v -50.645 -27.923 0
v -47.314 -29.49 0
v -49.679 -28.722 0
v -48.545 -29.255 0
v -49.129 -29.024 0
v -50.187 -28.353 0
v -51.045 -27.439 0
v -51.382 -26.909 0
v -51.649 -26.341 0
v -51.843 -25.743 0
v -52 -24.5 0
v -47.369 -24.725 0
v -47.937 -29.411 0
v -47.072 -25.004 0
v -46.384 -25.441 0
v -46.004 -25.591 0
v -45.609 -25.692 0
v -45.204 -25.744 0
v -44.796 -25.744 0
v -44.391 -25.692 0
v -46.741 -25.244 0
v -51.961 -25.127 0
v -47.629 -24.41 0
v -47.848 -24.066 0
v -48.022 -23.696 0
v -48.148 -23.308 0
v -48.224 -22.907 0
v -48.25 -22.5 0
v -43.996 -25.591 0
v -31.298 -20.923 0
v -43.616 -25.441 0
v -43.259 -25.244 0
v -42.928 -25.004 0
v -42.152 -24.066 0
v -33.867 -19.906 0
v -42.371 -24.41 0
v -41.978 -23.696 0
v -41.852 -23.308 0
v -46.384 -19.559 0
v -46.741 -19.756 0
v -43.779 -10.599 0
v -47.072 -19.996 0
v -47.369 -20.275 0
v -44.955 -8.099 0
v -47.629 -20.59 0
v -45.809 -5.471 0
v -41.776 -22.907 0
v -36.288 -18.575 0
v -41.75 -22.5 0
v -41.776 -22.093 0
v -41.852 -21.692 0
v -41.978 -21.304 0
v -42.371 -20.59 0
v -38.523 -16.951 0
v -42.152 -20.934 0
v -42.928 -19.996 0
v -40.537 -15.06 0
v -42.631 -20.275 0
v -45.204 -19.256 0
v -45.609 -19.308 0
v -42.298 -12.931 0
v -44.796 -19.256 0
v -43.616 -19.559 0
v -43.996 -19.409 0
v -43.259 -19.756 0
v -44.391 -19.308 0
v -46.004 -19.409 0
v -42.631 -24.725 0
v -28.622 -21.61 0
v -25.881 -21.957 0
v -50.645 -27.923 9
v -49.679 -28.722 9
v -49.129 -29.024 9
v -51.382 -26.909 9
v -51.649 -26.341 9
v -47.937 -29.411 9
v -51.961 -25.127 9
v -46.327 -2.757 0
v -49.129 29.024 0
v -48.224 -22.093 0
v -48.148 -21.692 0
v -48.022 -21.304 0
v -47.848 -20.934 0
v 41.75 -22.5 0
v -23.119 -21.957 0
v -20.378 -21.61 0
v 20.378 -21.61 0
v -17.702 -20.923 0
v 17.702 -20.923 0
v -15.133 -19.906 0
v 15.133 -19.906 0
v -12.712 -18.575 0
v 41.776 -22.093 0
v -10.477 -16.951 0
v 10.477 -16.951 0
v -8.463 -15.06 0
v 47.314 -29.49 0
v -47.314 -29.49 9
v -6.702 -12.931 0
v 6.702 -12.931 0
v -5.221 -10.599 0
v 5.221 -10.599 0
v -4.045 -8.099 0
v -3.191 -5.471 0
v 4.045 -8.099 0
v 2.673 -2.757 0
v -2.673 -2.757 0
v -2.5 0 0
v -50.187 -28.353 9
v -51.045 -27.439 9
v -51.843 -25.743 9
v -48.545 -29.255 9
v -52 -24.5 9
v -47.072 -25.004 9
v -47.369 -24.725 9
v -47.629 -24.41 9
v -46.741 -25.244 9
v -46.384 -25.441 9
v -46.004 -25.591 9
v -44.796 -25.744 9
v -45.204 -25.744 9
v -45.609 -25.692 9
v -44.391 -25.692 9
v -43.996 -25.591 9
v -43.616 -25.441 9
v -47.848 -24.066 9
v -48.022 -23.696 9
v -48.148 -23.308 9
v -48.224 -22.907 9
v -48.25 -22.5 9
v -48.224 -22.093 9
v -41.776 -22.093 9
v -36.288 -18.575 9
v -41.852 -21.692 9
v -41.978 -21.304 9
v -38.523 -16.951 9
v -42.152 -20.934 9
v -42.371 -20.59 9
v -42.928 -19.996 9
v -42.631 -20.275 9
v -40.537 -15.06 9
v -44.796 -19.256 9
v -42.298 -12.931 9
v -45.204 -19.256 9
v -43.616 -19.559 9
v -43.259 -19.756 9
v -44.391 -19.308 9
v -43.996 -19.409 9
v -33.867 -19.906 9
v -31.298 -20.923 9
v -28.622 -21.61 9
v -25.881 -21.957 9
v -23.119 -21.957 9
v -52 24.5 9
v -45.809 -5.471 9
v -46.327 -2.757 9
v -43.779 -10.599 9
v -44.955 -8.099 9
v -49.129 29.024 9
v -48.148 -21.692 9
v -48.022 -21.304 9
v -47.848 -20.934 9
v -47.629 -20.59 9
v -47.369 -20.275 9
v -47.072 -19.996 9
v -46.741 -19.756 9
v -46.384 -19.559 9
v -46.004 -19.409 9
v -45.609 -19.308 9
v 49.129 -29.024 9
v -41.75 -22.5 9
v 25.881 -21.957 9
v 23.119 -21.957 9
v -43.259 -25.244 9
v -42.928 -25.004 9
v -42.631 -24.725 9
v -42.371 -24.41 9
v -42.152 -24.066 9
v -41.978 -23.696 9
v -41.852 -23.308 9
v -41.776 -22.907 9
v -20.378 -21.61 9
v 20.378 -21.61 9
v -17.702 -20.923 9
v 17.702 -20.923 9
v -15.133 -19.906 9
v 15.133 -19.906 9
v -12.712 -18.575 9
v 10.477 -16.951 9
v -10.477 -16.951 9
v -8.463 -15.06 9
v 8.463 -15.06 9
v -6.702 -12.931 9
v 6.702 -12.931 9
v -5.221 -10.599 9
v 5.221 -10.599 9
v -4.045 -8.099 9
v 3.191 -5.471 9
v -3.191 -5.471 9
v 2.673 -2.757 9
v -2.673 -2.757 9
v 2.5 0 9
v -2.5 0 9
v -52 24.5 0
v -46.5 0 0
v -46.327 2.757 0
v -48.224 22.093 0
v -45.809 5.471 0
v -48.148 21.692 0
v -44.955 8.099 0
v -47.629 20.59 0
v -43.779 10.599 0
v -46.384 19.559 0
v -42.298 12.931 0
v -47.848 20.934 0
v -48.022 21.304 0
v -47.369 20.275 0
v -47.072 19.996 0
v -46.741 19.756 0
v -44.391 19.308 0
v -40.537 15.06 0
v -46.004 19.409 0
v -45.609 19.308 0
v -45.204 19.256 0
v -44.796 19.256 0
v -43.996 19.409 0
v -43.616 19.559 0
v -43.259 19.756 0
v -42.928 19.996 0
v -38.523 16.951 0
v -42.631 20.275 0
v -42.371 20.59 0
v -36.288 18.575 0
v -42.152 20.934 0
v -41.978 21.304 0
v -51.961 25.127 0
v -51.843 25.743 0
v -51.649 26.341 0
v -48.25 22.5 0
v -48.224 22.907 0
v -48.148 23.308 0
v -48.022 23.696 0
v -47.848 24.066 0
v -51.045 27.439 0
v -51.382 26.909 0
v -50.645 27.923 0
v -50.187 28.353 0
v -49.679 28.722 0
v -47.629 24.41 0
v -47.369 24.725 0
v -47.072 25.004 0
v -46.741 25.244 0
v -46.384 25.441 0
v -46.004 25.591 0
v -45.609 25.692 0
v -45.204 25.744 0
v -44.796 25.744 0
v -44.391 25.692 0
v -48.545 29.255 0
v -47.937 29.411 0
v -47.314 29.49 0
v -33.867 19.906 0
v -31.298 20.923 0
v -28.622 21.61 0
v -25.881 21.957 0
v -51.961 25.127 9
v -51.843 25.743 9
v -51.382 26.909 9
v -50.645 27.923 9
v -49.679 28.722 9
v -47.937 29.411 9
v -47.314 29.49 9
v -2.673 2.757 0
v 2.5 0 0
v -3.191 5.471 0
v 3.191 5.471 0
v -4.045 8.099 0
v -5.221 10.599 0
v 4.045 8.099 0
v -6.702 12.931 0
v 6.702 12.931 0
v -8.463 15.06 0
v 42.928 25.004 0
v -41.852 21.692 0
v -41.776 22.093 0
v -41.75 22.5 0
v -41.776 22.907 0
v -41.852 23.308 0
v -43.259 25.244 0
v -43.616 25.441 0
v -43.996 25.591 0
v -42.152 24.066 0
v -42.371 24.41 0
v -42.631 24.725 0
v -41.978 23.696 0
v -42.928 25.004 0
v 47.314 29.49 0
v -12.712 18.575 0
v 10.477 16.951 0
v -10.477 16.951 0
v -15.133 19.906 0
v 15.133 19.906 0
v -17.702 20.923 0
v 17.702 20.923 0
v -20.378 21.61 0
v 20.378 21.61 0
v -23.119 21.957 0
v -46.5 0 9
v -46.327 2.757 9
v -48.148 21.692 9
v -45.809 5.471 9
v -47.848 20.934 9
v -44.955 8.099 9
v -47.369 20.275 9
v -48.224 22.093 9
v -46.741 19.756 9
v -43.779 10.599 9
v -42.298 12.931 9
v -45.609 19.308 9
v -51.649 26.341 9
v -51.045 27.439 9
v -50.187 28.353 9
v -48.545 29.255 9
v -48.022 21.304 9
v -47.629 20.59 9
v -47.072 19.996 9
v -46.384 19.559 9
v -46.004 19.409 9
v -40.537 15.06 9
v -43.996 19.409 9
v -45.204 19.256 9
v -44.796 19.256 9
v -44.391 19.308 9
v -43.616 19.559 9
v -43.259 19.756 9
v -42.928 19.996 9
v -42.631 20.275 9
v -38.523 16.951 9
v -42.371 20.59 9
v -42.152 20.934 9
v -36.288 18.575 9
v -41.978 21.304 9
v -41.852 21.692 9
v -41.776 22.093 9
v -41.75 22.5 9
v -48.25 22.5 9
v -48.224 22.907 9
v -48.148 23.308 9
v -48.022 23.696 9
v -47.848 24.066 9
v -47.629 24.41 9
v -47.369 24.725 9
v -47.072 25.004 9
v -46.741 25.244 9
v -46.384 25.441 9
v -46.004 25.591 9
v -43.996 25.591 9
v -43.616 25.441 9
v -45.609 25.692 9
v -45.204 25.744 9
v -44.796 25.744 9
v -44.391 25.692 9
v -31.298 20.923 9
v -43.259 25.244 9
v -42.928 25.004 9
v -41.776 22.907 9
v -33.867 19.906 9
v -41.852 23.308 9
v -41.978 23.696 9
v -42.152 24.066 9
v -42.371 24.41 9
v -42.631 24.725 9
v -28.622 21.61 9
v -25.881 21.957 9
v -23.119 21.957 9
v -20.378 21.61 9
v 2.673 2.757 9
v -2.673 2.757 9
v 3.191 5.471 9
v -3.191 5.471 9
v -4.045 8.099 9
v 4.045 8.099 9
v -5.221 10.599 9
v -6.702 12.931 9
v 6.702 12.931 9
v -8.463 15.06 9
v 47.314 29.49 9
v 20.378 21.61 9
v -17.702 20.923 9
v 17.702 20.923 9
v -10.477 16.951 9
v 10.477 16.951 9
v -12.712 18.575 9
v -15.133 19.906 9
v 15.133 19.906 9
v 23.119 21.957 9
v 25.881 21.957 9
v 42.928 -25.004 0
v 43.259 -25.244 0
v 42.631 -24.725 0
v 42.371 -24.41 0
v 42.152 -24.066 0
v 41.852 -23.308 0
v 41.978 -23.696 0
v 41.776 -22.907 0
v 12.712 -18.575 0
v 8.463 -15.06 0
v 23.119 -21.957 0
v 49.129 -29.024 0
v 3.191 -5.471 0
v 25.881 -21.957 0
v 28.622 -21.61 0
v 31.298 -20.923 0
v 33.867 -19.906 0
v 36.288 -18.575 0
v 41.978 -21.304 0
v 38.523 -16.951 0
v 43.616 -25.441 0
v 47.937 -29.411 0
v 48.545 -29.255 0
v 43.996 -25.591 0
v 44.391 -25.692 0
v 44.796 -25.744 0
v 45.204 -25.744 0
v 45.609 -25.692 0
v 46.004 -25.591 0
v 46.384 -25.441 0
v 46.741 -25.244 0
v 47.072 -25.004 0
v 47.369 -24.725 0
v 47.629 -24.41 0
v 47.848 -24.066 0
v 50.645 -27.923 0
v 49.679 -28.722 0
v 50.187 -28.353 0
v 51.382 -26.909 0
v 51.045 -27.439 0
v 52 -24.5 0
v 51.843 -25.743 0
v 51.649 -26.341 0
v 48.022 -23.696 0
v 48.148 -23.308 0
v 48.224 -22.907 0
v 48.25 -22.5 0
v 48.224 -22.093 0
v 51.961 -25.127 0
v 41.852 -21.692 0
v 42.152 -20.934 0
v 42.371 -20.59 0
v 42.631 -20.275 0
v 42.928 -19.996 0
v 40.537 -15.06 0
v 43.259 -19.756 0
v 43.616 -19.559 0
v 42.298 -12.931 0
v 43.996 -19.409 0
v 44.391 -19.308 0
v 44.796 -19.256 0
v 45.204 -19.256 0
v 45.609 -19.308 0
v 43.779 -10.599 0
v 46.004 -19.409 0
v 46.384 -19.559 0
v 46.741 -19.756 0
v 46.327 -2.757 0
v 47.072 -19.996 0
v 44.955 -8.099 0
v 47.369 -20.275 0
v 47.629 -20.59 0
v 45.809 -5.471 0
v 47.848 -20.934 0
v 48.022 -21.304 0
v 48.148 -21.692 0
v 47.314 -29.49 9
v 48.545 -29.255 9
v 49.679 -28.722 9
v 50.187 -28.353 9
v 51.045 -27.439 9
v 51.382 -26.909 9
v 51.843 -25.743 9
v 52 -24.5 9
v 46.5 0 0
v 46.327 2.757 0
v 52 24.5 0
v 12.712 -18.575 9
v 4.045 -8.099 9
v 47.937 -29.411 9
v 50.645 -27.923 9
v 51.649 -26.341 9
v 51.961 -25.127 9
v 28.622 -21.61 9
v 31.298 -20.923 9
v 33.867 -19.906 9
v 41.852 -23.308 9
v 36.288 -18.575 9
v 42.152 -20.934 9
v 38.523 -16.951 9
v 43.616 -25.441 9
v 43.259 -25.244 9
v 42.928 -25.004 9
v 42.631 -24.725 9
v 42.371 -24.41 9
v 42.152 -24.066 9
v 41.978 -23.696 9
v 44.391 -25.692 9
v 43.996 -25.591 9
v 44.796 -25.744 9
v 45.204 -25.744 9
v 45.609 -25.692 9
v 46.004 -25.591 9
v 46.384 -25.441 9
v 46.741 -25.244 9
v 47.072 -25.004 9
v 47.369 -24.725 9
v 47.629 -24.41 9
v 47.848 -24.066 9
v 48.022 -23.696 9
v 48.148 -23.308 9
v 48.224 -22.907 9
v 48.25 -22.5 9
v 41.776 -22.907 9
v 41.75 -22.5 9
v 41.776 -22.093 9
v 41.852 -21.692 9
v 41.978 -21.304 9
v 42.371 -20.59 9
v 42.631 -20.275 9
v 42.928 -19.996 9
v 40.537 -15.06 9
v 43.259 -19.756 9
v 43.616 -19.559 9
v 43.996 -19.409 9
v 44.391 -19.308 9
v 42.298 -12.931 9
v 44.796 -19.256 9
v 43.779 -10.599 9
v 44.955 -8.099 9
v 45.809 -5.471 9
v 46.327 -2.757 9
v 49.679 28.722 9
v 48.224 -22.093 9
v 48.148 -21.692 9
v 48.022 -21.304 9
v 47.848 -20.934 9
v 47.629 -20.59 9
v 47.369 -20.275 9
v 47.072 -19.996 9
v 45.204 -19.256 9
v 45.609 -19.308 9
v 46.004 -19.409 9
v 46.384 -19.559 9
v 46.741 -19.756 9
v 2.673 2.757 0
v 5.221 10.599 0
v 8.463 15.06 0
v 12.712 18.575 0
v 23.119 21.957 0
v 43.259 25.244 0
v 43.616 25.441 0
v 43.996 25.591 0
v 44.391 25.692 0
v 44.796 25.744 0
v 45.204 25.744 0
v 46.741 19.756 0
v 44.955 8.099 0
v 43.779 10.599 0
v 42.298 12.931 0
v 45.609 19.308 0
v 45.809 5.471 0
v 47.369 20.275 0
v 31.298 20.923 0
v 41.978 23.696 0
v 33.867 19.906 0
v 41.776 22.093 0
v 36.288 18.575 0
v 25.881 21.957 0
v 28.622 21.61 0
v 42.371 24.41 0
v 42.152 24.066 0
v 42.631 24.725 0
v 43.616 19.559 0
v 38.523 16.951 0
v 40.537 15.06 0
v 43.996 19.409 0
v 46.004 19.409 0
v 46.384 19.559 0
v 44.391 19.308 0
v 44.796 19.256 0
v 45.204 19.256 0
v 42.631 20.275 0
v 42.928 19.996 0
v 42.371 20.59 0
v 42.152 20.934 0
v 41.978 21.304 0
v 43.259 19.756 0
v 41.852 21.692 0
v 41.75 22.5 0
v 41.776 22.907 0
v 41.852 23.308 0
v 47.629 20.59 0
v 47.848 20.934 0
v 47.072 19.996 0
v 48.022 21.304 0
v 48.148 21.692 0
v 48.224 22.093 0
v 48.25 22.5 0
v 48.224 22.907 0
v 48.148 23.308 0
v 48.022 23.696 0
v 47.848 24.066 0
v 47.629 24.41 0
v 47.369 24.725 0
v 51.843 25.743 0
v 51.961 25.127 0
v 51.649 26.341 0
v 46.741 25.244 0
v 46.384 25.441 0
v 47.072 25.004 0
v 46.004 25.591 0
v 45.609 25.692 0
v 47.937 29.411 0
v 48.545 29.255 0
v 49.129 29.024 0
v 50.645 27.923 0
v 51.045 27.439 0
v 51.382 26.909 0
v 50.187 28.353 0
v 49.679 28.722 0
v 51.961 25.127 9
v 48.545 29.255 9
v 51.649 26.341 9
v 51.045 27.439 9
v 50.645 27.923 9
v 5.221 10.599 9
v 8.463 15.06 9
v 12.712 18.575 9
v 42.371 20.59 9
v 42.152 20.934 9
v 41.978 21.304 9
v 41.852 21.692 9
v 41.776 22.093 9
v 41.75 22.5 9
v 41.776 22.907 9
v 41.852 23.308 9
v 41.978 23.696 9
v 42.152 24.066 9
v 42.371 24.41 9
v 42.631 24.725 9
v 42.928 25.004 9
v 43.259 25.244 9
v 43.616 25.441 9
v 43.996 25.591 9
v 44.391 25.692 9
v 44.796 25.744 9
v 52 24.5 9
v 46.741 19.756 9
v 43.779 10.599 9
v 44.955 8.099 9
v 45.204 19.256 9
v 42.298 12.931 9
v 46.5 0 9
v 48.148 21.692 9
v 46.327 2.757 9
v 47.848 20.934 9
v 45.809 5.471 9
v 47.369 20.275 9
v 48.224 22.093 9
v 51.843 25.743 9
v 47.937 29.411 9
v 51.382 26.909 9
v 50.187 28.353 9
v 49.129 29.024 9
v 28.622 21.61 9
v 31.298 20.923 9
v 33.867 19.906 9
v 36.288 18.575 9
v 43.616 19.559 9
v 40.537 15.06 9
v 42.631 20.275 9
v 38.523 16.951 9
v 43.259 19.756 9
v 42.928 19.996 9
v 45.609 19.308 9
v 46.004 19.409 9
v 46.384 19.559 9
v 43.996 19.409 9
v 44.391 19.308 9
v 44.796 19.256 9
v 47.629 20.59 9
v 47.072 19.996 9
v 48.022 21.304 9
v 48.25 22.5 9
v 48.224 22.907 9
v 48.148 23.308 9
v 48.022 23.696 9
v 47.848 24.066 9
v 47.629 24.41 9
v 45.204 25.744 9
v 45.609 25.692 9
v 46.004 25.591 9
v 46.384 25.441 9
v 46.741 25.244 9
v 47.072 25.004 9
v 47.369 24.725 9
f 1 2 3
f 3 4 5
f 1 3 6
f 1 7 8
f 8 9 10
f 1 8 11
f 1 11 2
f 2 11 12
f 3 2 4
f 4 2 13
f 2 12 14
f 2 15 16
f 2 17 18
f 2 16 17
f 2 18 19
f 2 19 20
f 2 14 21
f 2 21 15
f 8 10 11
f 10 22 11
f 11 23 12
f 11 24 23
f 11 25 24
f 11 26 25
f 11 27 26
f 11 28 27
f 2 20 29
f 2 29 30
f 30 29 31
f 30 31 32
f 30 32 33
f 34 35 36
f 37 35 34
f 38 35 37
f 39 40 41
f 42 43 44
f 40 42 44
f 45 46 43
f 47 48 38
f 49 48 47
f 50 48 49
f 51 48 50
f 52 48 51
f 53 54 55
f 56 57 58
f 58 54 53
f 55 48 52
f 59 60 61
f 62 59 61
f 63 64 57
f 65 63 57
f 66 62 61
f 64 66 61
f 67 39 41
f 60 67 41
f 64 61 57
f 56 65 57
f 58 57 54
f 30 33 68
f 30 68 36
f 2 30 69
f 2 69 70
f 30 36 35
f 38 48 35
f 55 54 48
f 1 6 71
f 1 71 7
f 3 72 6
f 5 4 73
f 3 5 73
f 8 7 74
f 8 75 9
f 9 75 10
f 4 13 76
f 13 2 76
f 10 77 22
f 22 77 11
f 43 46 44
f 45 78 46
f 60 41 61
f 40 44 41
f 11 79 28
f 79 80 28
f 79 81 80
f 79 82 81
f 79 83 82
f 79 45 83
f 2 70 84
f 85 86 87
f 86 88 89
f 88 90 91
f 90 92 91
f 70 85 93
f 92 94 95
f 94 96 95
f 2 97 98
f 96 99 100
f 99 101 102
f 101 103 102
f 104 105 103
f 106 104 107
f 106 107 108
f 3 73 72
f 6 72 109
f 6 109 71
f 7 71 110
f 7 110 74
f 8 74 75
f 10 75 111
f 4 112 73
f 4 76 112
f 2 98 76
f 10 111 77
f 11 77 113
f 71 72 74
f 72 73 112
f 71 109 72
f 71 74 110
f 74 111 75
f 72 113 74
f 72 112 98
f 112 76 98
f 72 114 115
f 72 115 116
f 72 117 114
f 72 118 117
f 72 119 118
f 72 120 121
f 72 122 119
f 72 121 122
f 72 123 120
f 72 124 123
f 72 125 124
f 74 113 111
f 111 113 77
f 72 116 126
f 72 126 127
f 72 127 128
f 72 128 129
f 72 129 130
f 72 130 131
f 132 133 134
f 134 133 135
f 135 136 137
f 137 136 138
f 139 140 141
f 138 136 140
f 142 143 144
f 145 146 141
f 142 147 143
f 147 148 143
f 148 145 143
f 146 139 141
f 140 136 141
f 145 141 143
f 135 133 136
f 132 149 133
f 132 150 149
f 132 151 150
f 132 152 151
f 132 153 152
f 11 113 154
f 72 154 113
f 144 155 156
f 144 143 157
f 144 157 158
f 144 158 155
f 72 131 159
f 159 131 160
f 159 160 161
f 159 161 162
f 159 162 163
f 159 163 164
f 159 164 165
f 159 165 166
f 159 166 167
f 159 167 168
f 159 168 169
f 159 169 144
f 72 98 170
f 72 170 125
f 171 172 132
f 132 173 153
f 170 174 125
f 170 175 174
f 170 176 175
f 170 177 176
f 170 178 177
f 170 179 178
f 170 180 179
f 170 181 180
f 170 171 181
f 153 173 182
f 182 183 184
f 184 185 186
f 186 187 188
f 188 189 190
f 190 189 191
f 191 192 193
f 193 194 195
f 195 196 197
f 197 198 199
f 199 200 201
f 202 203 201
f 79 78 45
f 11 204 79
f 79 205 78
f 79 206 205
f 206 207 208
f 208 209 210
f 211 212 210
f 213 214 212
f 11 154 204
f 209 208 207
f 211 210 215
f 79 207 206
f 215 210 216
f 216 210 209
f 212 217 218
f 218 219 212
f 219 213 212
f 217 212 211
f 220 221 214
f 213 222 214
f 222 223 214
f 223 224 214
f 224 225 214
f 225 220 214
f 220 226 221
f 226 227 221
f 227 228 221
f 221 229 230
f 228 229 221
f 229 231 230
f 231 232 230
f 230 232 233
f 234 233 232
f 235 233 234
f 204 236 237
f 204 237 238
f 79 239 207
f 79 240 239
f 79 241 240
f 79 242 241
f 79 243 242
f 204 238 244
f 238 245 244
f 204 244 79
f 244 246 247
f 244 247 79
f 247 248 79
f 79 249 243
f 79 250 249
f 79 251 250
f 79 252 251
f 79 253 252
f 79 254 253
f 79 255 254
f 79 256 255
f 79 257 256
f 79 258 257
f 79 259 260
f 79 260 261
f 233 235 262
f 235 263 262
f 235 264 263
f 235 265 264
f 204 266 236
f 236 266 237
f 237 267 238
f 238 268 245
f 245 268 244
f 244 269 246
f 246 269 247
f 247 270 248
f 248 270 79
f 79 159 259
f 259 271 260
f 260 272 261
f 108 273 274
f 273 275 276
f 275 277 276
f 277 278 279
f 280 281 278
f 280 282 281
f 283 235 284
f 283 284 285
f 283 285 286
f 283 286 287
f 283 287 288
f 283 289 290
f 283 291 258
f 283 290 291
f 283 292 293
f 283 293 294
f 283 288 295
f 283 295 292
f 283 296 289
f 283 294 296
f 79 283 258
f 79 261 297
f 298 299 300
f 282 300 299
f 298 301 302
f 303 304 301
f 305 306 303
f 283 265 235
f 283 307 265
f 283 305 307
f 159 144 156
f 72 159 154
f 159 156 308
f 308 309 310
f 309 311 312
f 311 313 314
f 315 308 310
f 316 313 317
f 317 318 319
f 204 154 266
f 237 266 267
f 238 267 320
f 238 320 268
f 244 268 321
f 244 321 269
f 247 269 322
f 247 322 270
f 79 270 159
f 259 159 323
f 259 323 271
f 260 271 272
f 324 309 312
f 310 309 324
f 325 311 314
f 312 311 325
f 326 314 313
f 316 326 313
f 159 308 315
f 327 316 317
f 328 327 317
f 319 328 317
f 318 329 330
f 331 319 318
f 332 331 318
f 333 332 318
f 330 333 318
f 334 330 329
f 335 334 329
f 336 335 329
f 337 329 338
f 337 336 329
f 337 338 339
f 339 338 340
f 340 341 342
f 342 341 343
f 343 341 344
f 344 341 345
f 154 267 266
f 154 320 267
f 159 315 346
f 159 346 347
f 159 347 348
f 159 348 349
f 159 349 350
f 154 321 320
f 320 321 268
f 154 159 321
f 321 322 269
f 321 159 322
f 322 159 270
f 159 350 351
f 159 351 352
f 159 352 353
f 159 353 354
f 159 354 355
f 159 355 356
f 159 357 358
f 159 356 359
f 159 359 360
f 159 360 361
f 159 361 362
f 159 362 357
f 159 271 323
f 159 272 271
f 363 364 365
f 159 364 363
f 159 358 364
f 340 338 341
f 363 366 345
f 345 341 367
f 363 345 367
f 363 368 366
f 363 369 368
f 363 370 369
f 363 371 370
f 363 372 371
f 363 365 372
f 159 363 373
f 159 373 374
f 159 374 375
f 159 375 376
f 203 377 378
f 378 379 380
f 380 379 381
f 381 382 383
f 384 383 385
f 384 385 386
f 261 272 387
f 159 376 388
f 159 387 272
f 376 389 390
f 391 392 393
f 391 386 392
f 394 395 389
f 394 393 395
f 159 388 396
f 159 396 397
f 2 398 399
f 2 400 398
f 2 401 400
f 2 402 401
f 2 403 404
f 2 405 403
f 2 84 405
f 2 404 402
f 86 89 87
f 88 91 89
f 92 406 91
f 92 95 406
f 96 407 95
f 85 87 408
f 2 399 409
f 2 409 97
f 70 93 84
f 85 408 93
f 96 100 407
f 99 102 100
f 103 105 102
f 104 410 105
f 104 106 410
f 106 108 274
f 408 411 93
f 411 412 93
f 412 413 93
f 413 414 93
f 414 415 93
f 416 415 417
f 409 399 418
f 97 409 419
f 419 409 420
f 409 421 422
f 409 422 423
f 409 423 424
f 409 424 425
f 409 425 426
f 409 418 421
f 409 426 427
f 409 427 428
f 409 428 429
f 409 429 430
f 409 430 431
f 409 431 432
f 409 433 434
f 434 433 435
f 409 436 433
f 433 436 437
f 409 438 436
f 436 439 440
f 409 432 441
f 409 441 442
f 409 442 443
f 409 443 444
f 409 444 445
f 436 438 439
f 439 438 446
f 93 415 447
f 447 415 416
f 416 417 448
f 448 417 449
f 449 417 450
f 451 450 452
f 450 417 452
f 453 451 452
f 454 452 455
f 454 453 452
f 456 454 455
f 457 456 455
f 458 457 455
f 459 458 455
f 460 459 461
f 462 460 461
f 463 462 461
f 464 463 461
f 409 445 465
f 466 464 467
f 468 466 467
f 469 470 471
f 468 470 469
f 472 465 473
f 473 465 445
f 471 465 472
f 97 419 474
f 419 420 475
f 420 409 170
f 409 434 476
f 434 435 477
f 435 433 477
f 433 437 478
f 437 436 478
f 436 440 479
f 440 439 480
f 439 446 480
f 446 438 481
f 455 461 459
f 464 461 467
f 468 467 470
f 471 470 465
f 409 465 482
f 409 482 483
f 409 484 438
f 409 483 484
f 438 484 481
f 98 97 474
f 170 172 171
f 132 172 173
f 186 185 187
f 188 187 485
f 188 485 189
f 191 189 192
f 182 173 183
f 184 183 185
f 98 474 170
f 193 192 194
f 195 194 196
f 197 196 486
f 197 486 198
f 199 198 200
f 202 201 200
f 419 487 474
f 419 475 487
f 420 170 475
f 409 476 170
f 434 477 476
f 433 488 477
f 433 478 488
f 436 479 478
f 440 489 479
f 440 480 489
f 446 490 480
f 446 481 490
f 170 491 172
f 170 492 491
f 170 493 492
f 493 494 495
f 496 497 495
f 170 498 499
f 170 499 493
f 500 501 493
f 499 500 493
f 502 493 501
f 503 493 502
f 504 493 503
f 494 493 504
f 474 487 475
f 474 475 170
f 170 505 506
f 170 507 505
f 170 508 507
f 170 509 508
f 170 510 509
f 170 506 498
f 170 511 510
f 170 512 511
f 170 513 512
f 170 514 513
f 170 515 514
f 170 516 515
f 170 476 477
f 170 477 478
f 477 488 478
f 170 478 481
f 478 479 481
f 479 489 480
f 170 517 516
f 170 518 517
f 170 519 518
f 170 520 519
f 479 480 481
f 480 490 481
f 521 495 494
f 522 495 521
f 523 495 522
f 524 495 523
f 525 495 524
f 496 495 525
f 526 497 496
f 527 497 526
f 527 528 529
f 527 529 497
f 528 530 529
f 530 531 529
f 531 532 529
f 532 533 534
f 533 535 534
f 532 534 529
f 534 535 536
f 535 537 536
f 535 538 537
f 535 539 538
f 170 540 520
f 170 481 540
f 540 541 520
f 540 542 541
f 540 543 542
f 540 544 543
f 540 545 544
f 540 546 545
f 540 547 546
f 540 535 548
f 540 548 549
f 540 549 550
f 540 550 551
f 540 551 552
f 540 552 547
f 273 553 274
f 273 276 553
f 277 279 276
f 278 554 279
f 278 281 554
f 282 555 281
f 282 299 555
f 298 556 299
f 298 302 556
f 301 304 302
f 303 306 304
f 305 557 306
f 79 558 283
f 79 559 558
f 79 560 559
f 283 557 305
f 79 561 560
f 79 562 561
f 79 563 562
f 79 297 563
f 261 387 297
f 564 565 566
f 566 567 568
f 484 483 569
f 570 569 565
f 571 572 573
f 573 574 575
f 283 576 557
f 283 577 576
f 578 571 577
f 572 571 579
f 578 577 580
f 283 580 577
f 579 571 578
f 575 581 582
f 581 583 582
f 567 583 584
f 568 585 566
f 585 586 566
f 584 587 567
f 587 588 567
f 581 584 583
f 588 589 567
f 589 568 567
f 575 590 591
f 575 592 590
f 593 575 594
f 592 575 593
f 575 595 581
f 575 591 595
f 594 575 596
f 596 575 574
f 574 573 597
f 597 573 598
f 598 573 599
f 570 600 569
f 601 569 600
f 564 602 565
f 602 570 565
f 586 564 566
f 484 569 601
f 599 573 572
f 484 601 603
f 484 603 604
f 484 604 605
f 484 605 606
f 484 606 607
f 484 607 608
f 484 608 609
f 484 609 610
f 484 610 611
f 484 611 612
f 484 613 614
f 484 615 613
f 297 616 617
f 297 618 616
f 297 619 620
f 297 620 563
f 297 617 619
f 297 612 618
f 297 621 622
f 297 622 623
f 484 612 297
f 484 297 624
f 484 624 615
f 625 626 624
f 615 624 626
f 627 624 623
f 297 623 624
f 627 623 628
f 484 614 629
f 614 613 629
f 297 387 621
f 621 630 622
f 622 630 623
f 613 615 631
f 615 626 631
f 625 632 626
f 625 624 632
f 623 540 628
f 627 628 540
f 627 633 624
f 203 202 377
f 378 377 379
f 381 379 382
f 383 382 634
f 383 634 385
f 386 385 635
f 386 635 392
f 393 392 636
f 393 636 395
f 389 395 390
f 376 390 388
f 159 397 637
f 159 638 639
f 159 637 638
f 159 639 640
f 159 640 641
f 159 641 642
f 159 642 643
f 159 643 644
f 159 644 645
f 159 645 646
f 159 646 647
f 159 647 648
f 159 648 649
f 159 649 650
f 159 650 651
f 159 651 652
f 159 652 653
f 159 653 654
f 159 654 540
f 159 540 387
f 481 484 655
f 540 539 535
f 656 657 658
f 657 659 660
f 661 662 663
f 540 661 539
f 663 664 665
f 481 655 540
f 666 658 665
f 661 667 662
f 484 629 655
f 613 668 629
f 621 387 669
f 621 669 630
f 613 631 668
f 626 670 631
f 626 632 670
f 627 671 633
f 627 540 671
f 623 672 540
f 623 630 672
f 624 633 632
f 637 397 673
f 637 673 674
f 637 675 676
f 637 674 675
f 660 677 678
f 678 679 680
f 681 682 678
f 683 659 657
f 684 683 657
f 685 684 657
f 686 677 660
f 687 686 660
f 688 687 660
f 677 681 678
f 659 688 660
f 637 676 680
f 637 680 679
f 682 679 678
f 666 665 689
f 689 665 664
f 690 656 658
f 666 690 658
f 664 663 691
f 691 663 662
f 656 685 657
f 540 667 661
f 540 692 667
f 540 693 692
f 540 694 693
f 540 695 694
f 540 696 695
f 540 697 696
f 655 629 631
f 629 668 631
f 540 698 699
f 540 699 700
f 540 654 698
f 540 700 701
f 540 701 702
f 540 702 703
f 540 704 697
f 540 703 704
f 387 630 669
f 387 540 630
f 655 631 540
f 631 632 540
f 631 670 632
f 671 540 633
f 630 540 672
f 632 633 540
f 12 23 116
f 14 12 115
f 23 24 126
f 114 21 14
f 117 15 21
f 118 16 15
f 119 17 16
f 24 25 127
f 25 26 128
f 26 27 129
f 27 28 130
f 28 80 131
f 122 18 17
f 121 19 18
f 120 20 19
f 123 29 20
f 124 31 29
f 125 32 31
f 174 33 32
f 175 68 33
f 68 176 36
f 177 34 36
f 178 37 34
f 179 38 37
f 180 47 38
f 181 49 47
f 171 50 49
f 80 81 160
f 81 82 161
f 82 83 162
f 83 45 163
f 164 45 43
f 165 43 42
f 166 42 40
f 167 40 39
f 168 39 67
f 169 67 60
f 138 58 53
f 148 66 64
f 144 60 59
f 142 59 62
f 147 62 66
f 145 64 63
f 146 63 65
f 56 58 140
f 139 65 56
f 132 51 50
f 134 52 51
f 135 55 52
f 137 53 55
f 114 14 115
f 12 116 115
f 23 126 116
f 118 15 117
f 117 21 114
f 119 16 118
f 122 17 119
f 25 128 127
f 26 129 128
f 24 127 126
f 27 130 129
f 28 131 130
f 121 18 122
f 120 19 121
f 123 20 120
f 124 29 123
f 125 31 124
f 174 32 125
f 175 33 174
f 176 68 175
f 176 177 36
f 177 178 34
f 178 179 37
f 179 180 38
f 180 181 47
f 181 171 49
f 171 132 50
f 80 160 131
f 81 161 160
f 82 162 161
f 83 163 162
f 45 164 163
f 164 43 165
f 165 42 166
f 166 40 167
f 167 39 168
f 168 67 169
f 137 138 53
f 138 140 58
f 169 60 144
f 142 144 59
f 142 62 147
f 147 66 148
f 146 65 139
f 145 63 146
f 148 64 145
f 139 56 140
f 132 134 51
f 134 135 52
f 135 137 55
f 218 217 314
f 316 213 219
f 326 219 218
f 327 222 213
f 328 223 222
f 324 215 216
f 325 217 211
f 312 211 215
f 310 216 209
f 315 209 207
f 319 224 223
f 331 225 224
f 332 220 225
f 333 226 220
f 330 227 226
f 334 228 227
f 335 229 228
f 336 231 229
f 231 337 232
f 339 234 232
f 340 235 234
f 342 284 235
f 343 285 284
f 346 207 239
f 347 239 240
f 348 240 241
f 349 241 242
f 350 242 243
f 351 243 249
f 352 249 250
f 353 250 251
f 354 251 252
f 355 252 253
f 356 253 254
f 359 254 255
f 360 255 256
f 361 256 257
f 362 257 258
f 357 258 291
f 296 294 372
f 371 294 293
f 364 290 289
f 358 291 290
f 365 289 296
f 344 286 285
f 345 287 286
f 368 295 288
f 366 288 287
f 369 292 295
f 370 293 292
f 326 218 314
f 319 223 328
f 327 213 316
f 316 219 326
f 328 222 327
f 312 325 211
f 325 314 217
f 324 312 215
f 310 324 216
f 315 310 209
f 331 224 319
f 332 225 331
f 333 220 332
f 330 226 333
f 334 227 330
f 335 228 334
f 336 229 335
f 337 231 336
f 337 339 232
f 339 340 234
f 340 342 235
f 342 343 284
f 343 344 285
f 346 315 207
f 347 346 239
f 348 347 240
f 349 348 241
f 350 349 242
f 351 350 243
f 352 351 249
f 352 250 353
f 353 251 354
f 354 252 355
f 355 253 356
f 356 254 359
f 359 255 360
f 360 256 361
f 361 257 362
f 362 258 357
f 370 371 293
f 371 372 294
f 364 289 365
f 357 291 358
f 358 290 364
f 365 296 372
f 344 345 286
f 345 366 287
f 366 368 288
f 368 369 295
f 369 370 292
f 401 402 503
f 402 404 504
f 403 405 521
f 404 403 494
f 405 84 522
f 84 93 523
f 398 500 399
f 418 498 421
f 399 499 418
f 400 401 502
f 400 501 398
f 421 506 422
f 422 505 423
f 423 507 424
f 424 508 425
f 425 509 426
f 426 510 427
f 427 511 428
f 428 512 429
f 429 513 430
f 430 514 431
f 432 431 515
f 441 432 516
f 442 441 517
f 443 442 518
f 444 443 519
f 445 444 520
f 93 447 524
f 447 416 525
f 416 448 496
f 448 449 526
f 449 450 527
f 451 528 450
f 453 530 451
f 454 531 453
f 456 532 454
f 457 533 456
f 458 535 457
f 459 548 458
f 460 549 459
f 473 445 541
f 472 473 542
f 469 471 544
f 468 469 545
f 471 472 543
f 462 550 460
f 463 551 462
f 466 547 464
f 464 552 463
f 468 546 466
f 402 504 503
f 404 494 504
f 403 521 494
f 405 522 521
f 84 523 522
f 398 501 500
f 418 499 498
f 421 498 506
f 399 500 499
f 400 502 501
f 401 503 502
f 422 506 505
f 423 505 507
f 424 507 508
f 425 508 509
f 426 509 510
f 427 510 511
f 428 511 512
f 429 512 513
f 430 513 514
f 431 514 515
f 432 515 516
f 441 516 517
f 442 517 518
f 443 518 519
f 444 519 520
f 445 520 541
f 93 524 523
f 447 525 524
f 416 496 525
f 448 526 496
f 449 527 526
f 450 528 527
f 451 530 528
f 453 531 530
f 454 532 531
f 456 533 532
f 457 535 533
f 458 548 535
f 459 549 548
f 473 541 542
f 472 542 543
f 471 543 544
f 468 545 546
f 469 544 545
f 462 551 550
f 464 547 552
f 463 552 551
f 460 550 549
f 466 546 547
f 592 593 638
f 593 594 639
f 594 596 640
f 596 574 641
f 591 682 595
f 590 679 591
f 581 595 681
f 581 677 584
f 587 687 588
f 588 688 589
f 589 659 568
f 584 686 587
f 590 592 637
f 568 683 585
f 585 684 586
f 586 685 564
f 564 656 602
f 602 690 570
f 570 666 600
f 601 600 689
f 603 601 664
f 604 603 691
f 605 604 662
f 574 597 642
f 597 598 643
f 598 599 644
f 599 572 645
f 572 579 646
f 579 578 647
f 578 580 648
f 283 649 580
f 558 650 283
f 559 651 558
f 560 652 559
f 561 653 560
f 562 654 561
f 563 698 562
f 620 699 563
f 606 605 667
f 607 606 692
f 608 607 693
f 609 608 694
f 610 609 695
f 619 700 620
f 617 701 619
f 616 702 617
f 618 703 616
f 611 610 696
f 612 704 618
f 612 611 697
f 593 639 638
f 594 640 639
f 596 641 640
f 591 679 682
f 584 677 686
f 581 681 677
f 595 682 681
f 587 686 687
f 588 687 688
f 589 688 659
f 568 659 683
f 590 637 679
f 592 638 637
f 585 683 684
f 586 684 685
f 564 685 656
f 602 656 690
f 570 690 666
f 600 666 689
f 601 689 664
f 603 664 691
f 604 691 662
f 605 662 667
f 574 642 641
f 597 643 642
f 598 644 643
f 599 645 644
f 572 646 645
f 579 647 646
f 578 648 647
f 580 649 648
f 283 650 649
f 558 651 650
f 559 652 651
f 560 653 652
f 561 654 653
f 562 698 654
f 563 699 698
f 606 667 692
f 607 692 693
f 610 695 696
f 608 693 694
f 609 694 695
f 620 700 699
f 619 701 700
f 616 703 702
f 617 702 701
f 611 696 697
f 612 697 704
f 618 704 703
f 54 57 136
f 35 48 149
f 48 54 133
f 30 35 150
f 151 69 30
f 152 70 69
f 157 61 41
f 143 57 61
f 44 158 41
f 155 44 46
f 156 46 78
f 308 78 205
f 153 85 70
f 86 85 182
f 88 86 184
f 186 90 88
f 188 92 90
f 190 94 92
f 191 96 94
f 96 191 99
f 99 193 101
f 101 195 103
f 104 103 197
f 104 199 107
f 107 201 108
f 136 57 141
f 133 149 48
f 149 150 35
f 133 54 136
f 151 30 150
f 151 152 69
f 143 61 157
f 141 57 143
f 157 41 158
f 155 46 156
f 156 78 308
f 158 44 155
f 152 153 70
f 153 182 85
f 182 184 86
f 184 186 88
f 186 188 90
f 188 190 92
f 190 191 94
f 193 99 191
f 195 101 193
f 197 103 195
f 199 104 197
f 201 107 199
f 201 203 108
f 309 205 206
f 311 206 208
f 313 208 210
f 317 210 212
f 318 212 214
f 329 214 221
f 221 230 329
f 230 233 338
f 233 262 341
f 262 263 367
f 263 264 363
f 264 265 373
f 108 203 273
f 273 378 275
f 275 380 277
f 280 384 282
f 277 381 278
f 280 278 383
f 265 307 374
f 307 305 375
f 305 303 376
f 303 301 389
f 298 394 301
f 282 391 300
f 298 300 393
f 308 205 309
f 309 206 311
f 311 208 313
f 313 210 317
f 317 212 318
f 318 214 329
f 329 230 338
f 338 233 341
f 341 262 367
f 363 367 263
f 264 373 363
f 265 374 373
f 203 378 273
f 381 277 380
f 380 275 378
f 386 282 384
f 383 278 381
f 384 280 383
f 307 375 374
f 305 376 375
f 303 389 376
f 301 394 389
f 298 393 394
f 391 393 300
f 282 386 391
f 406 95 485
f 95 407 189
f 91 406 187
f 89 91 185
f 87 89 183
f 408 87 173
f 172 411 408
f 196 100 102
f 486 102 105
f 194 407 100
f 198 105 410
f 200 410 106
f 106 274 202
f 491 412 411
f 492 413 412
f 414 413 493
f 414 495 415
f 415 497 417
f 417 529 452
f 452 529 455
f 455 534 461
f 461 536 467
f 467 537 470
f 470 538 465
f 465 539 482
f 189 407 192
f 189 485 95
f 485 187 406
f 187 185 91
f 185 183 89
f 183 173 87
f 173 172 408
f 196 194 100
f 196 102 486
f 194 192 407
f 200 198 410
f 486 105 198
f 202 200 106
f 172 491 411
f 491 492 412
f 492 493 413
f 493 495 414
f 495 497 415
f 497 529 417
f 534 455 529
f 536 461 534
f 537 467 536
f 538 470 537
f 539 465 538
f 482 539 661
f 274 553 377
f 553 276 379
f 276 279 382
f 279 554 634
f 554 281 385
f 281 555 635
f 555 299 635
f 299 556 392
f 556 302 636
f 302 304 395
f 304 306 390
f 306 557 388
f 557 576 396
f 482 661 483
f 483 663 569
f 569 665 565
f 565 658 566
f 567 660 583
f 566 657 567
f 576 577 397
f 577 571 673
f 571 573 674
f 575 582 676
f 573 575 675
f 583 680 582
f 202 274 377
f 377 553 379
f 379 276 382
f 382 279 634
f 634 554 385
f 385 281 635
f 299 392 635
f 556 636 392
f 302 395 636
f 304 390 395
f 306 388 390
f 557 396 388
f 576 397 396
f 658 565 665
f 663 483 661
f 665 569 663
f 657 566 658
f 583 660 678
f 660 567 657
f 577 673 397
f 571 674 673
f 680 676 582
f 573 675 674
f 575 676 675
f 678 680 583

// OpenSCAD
$fn = 50;

difference() {
	union() {
		hull() {
			translate(v = [-47.0, 24.5, 0]) {
				cylinder(h = 9, r = 5);
			}
			translate(v = [47.0, 24.5, 0]) {
				cylinder(h = 9, r = 5);
			}
			translate(v = [-47.0, -24.5, 0]) {
				cylinder(h = 9, r = 5);
			}
			translate(v = [47.0, -24.5, 0]) {
				cylinder(h = 9, r = 5);
			}
		}
	}
	union() {
		translate(v = [-45.0, -22.5, -100.0]) {
			cylinder(h = 200, r = 3.25);
		}
		translate(v = [-45.0, 22.5, -100.0]) {
			cylinder(h = 200, r = 3.25);
		}
		translate(v = [45.0, -22.5, -100.0]) {
			cylinder(h = 200, r = 3.25);
		}
		translate(v = [45.0, 22.5, -100.0]) {
			cylinder(h = 200, r = 3.25);
		}
		translate(v = [-45.0, -22.5, -100.0]) {
			cylinder(h = 200, r = 1.8);
		}
		translate(v = [-45.0, 22.5, -100.0]) {
			cylinder(h = 200, r = 1.8);
		}
		translate(v = [45.0, -22.5, -100.0]) {
			cylinder(h = 200, r = 1.8);
		}
		translate(v = [45.0, 22.5, -100.0]) {
			cylinder(h = 200, r = 1.8);
		}
		translate(v = [-24.5, 0, 0.0]) {
			cylinder(h = 9, r = 22.0);
		}
		translate(v = [24.5, 0, 0.0]) {
			cylinder(h = 9, r = 22.0);
		}
	}
}
